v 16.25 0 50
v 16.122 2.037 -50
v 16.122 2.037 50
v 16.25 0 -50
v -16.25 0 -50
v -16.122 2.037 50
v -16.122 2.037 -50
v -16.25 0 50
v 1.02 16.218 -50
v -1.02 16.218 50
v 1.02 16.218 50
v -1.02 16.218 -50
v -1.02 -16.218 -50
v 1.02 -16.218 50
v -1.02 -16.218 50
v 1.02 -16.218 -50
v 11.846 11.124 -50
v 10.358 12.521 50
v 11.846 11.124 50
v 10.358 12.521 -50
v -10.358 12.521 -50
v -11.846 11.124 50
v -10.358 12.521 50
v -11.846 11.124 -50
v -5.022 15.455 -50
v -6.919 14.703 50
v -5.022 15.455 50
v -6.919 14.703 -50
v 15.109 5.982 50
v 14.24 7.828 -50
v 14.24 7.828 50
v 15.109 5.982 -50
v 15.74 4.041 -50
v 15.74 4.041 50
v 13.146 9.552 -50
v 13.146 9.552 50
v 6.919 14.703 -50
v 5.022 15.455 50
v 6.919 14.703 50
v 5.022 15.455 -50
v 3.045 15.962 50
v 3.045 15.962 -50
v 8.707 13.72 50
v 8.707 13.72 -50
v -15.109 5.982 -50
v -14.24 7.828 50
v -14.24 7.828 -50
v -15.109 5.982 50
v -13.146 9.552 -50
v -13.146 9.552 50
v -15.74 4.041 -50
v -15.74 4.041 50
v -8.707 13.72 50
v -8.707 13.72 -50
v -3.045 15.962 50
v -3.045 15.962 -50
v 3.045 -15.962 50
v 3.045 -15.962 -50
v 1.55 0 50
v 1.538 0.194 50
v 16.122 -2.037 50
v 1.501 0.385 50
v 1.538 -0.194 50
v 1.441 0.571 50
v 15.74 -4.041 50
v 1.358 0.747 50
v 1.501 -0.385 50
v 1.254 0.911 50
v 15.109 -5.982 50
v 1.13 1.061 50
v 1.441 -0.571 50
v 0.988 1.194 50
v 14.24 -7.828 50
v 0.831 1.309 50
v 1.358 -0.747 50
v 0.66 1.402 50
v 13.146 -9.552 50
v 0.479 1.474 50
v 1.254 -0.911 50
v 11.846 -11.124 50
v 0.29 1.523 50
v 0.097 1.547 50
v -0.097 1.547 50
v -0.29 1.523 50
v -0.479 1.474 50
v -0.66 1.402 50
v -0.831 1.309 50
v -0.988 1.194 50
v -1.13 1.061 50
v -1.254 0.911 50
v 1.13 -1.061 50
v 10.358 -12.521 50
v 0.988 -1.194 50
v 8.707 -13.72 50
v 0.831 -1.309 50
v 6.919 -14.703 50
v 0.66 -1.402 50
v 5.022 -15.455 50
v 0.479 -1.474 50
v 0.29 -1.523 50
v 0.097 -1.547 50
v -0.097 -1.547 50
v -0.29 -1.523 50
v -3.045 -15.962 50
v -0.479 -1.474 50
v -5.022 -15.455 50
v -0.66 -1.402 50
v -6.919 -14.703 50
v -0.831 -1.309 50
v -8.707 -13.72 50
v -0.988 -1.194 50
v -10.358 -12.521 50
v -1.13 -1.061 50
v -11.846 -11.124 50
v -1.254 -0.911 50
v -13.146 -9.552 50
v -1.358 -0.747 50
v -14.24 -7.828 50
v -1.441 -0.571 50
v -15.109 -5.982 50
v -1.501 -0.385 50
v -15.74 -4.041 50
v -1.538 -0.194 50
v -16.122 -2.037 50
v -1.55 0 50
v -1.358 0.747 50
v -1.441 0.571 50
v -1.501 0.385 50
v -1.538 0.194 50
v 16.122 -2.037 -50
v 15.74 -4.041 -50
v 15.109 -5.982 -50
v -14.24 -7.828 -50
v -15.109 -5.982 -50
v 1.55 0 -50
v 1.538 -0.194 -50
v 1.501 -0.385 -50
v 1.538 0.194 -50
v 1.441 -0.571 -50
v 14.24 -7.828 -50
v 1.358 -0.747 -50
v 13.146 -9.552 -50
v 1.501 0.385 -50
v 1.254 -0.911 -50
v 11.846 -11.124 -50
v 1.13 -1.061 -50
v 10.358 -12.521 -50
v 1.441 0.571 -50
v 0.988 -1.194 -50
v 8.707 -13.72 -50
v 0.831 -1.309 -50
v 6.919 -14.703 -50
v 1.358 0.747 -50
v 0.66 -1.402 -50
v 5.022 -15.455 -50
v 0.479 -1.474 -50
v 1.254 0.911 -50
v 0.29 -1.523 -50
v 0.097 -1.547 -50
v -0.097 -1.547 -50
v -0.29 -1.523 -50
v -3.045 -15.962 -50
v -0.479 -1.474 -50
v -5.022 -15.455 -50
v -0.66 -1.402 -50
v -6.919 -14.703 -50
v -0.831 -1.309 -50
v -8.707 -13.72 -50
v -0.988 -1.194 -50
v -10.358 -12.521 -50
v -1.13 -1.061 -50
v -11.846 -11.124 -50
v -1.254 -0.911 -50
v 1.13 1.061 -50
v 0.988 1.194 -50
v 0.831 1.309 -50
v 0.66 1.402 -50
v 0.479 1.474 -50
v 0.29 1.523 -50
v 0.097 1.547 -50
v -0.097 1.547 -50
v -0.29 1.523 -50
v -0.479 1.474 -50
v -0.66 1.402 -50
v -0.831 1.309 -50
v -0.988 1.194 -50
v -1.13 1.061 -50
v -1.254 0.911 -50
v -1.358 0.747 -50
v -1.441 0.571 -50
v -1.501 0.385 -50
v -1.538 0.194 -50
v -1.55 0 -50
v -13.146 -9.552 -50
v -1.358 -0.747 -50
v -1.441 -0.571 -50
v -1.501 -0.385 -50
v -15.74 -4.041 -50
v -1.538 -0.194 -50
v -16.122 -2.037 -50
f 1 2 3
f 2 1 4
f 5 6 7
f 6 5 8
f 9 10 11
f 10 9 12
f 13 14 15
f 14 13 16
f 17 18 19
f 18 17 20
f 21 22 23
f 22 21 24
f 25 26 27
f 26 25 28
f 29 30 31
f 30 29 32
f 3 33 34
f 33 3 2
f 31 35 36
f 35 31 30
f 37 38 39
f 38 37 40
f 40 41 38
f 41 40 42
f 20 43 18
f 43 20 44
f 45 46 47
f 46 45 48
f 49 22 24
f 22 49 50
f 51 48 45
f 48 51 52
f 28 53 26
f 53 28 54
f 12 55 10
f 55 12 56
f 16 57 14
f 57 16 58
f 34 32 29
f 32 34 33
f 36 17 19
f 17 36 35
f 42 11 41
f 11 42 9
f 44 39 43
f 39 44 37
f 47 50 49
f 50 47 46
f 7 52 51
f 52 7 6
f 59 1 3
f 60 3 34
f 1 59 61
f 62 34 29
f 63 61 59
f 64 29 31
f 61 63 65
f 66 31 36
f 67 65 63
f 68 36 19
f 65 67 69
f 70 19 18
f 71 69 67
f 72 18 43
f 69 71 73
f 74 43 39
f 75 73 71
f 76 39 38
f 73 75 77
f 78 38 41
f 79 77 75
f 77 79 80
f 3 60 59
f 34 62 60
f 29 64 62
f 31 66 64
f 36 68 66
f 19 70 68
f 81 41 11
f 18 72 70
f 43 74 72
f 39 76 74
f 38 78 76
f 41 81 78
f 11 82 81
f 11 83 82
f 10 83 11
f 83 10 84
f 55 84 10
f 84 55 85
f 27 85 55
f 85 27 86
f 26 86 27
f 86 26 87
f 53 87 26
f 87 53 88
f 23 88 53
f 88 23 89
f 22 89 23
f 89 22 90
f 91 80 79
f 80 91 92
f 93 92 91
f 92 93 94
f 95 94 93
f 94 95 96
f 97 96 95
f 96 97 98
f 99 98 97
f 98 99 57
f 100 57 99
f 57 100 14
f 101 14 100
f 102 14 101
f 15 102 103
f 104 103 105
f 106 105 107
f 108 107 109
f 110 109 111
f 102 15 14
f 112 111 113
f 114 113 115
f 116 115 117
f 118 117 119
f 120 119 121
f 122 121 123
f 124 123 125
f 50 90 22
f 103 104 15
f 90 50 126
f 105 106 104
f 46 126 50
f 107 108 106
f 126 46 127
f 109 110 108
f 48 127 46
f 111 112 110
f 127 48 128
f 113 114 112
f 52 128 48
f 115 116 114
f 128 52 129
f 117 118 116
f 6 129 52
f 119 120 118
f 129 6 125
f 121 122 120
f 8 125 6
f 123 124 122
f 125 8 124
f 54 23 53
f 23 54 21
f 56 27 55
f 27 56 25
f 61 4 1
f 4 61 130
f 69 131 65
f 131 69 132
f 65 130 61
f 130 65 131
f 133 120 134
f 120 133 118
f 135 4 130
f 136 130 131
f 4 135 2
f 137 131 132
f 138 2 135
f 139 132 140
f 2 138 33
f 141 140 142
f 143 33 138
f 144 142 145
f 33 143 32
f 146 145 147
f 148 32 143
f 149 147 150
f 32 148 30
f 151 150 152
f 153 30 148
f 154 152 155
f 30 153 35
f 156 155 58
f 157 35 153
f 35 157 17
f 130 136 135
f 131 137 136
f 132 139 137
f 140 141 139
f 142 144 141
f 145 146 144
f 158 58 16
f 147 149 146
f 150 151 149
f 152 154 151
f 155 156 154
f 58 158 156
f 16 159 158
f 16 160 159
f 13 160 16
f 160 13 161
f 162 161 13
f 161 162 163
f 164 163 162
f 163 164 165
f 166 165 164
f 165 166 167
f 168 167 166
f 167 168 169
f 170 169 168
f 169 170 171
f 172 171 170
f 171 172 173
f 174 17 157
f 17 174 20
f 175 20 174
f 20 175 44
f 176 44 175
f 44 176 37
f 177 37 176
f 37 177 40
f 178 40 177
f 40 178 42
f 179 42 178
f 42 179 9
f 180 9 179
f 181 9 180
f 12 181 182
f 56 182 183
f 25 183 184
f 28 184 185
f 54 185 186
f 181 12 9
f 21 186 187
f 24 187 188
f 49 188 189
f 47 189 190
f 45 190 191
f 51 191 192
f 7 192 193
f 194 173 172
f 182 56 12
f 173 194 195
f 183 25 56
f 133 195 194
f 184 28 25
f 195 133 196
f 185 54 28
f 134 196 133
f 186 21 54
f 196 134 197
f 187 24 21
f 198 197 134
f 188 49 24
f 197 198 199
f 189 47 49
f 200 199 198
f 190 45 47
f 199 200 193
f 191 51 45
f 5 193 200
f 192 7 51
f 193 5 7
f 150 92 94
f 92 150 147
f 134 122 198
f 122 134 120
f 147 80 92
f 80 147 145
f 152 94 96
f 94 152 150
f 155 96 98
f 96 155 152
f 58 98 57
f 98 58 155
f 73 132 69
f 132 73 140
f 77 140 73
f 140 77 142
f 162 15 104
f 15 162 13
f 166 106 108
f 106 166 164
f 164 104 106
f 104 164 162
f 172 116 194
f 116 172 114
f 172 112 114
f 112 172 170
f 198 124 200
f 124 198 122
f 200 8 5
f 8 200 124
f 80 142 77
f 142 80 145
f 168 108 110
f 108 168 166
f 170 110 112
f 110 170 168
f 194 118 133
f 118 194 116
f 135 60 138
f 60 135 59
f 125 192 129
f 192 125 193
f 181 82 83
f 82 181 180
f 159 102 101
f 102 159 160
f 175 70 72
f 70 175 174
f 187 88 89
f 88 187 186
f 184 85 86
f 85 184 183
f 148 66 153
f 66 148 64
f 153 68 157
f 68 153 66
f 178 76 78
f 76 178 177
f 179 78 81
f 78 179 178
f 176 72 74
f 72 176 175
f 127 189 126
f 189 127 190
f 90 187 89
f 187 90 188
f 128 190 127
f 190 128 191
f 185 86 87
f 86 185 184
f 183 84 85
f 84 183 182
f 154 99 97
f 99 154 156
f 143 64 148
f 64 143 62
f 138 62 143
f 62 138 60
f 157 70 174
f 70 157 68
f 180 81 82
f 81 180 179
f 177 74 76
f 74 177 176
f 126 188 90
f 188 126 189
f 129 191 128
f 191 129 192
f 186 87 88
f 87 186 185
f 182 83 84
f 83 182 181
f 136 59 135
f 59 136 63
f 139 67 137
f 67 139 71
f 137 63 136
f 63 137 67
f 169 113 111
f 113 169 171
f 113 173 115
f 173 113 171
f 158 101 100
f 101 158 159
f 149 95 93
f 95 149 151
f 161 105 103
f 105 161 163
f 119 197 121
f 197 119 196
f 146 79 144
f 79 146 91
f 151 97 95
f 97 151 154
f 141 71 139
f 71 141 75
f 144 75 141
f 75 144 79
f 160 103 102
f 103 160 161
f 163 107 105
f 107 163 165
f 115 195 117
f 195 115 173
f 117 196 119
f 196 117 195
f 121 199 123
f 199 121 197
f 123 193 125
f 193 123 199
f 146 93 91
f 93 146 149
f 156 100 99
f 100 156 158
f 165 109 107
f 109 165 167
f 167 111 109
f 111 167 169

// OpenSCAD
$fn = 50;


difference() {
	union() {
		translate(v = [0, 0, -50.0000000000]) {
			cylinder(h = 100, r = 16.2500000000);
		}
	}
	union() {
		translate(v = [0, 0, -100.0000000000]) {
			cylinder(h = 200, r = 1.5500000000);
		}
	}
}
